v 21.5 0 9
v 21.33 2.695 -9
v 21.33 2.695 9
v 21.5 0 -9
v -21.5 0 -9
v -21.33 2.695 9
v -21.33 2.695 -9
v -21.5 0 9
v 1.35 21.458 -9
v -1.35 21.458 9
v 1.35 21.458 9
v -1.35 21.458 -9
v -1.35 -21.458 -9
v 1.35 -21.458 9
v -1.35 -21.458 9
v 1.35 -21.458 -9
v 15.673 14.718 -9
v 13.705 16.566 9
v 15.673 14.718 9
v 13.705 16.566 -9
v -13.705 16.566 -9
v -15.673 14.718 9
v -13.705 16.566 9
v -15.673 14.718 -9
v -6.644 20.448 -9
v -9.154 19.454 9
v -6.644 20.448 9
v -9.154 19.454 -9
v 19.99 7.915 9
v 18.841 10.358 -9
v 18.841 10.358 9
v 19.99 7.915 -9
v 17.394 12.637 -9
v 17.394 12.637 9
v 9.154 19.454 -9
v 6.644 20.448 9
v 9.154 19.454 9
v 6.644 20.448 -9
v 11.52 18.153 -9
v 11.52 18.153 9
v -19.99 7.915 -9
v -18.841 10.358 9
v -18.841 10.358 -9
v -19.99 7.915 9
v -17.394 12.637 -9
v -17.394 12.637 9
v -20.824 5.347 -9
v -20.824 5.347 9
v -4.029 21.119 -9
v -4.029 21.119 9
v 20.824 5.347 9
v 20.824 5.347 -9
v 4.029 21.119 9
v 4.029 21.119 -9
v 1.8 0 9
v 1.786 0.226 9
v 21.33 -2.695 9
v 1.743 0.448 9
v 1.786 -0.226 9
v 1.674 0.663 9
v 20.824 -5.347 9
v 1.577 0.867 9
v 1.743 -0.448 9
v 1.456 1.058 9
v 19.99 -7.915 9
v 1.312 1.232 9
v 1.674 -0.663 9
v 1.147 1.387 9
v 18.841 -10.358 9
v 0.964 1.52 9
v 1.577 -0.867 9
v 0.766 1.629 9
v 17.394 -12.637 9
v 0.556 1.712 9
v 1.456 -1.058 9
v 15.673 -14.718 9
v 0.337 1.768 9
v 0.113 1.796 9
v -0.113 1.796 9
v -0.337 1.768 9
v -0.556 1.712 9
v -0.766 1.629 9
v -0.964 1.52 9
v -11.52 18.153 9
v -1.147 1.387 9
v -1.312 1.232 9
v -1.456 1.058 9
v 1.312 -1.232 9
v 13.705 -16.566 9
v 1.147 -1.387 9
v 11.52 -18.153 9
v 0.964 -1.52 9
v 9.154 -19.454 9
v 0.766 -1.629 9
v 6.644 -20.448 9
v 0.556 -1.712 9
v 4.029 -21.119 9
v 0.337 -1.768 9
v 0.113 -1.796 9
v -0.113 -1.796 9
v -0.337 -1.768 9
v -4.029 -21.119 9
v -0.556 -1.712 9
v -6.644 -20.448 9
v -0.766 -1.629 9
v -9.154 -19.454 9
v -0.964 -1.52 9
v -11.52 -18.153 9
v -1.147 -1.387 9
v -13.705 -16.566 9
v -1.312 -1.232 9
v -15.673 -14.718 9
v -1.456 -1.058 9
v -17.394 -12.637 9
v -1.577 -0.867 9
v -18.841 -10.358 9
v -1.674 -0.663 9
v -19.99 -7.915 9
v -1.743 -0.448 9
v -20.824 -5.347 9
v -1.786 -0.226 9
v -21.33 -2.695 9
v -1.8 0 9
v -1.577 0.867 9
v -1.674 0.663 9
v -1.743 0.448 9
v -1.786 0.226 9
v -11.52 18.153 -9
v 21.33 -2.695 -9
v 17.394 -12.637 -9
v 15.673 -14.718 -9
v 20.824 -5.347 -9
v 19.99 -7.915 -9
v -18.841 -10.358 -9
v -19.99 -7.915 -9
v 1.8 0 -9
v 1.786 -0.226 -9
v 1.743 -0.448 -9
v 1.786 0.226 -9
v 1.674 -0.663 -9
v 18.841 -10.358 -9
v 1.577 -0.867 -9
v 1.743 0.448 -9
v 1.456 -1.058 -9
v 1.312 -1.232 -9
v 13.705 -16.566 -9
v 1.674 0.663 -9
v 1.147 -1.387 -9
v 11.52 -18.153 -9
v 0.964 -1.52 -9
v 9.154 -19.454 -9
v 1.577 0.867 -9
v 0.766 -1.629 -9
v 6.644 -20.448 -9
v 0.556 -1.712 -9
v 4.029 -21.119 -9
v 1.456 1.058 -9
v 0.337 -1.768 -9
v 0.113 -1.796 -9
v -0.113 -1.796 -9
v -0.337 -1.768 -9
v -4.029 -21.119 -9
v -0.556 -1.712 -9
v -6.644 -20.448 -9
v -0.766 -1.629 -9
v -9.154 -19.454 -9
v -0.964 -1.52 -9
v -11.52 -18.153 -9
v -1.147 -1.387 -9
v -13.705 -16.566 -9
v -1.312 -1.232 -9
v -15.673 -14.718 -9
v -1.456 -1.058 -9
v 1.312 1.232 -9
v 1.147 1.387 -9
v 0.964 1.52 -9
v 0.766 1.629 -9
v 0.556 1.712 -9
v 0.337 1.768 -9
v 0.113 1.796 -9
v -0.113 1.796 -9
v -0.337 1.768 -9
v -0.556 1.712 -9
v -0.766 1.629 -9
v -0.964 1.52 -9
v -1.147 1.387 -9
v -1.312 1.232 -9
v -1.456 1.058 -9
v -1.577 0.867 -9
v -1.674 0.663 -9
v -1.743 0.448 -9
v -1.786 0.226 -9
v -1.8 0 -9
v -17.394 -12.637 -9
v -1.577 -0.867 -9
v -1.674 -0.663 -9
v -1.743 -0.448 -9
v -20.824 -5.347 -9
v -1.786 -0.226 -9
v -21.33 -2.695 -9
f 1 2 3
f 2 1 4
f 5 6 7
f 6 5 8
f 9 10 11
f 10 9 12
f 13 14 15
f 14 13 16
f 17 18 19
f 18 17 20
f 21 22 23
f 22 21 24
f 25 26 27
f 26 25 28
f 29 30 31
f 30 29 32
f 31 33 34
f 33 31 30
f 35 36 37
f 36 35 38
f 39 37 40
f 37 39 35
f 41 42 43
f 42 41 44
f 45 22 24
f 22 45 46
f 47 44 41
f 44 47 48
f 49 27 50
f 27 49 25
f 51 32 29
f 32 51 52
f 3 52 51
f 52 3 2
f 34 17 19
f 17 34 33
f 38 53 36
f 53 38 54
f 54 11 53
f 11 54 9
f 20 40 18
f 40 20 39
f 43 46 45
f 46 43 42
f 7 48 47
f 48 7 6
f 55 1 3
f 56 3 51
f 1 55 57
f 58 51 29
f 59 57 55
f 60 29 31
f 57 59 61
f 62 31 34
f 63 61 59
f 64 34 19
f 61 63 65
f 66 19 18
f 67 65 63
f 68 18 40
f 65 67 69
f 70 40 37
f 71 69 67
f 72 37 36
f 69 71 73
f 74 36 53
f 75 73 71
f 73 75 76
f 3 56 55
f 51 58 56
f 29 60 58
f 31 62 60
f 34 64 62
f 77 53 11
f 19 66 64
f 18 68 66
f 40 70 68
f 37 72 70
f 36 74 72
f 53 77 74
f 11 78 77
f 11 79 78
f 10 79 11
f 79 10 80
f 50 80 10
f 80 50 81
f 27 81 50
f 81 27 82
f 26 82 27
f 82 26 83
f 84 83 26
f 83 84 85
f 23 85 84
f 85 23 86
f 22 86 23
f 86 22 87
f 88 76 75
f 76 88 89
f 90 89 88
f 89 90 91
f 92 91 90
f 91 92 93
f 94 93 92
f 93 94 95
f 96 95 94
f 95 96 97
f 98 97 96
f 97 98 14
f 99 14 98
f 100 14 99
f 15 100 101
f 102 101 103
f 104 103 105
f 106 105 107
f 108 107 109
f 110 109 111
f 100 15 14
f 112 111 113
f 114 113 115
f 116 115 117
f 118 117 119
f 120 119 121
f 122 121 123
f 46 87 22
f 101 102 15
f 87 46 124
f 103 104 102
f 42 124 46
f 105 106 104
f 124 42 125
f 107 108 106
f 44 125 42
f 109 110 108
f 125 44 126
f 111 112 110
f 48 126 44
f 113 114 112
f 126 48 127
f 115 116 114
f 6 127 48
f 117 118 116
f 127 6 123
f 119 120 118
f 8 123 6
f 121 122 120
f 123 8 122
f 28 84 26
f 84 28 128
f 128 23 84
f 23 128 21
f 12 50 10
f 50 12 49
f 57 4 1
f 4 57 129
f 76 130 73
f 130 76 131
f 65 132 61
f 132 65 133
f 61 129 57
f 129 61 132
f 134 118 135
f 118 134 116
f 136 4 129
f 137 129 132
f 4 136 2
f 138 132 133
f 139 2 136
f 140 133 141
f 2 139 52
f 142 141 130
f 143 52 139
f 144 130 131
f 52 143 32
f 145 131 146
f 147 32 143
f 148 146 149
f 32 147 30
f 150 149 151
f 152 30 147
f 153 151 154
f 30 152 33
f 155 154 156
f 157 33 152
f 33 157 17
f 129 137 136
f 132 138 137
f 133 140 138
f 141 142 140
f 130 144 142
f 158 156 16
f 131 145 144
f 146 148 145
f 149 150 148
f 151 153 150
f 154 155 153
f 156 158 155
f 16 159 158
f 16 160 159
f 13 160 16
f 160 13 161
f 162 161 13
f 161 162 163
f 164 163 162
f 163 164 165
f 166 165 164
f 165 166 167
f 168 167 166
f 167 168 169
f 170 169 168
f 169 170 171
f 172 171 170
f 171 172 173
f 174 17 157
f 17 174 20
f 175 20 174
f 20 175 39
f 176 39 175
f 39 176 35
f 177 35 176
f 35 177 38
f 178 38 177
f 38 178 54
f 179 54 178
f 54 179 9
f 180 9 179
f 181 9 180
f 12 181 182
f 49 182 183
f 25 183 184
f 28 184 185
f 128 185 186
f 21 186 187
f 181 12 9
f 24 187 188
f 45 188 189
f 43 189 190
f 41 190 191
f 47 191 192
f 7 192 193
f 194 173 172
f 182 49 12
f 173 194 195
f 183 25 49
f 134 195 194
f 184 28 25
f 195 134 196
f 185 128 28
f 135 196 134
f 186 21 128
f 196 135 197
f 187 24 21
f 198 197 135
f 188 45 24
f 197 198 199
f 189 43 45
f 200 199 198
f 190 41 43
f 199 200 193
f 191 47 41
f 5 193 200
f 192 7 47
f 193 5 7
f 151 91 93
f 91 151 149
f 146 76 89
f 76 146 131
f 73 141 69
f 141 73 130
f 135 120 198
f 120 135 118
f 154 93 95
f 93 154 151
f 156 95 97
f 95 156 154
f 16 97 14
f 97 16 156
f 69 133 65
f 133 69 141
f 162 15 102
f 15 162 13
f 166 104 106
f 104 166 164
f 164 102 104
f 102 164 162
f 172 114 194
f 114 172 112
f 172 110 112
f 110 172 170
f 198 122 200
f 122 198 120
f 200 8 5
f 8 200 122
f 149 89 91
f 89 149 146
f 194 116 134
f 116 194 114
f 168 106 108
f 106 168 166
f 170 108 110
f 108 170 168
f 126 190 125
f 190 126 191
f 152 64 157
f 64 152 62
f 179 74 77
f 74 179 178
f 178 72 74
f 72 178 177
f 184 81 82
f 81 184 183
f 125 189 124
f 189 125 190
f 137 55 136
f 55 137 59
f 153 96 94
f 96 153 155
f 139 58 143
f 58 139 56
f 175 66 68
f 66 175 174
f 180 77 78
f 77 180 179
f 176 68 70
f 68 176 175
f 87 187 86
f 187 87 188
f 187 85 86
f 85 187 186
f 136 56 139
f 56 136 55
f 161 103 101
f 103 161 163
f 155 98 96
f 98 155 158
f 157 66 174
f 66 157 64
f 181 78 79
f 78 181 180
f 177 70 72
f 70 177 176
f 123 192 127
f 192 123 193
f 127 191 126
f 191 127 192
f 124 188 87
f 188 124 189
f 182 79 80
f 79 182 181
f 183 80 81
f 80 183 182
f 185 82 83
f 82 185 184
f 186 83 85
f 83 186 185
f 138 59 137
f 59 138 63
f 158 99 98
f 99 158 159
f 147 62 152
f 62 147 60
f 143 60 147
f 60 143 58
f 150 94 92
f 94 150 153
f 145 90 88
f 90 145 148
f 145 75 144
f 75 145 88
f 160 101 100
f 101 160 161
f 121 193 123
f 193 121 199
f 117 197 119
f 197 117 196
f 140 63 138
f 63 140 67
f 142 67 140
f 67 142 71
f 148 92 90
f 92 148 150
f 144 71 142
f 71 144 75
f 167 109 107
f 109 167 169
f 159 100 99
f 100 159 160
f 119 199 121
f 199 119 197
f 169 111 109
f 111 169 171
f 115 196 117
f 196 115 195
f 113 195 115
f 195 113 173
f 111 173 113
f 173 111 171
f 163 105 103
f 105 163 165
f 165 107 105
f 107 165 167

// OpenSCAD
$fn = 50;


difference() {
	union() {
		translate(v = [0, 0, -9.0000000000]) {
			cylinder(h = 18, r = 21.5000000000);
		}
	}
	union() {
		translate(v = [0, 0, -100.0000000000]) {
			cylinder(h = 200, r = 1.8000000000);
		}
	}
}
